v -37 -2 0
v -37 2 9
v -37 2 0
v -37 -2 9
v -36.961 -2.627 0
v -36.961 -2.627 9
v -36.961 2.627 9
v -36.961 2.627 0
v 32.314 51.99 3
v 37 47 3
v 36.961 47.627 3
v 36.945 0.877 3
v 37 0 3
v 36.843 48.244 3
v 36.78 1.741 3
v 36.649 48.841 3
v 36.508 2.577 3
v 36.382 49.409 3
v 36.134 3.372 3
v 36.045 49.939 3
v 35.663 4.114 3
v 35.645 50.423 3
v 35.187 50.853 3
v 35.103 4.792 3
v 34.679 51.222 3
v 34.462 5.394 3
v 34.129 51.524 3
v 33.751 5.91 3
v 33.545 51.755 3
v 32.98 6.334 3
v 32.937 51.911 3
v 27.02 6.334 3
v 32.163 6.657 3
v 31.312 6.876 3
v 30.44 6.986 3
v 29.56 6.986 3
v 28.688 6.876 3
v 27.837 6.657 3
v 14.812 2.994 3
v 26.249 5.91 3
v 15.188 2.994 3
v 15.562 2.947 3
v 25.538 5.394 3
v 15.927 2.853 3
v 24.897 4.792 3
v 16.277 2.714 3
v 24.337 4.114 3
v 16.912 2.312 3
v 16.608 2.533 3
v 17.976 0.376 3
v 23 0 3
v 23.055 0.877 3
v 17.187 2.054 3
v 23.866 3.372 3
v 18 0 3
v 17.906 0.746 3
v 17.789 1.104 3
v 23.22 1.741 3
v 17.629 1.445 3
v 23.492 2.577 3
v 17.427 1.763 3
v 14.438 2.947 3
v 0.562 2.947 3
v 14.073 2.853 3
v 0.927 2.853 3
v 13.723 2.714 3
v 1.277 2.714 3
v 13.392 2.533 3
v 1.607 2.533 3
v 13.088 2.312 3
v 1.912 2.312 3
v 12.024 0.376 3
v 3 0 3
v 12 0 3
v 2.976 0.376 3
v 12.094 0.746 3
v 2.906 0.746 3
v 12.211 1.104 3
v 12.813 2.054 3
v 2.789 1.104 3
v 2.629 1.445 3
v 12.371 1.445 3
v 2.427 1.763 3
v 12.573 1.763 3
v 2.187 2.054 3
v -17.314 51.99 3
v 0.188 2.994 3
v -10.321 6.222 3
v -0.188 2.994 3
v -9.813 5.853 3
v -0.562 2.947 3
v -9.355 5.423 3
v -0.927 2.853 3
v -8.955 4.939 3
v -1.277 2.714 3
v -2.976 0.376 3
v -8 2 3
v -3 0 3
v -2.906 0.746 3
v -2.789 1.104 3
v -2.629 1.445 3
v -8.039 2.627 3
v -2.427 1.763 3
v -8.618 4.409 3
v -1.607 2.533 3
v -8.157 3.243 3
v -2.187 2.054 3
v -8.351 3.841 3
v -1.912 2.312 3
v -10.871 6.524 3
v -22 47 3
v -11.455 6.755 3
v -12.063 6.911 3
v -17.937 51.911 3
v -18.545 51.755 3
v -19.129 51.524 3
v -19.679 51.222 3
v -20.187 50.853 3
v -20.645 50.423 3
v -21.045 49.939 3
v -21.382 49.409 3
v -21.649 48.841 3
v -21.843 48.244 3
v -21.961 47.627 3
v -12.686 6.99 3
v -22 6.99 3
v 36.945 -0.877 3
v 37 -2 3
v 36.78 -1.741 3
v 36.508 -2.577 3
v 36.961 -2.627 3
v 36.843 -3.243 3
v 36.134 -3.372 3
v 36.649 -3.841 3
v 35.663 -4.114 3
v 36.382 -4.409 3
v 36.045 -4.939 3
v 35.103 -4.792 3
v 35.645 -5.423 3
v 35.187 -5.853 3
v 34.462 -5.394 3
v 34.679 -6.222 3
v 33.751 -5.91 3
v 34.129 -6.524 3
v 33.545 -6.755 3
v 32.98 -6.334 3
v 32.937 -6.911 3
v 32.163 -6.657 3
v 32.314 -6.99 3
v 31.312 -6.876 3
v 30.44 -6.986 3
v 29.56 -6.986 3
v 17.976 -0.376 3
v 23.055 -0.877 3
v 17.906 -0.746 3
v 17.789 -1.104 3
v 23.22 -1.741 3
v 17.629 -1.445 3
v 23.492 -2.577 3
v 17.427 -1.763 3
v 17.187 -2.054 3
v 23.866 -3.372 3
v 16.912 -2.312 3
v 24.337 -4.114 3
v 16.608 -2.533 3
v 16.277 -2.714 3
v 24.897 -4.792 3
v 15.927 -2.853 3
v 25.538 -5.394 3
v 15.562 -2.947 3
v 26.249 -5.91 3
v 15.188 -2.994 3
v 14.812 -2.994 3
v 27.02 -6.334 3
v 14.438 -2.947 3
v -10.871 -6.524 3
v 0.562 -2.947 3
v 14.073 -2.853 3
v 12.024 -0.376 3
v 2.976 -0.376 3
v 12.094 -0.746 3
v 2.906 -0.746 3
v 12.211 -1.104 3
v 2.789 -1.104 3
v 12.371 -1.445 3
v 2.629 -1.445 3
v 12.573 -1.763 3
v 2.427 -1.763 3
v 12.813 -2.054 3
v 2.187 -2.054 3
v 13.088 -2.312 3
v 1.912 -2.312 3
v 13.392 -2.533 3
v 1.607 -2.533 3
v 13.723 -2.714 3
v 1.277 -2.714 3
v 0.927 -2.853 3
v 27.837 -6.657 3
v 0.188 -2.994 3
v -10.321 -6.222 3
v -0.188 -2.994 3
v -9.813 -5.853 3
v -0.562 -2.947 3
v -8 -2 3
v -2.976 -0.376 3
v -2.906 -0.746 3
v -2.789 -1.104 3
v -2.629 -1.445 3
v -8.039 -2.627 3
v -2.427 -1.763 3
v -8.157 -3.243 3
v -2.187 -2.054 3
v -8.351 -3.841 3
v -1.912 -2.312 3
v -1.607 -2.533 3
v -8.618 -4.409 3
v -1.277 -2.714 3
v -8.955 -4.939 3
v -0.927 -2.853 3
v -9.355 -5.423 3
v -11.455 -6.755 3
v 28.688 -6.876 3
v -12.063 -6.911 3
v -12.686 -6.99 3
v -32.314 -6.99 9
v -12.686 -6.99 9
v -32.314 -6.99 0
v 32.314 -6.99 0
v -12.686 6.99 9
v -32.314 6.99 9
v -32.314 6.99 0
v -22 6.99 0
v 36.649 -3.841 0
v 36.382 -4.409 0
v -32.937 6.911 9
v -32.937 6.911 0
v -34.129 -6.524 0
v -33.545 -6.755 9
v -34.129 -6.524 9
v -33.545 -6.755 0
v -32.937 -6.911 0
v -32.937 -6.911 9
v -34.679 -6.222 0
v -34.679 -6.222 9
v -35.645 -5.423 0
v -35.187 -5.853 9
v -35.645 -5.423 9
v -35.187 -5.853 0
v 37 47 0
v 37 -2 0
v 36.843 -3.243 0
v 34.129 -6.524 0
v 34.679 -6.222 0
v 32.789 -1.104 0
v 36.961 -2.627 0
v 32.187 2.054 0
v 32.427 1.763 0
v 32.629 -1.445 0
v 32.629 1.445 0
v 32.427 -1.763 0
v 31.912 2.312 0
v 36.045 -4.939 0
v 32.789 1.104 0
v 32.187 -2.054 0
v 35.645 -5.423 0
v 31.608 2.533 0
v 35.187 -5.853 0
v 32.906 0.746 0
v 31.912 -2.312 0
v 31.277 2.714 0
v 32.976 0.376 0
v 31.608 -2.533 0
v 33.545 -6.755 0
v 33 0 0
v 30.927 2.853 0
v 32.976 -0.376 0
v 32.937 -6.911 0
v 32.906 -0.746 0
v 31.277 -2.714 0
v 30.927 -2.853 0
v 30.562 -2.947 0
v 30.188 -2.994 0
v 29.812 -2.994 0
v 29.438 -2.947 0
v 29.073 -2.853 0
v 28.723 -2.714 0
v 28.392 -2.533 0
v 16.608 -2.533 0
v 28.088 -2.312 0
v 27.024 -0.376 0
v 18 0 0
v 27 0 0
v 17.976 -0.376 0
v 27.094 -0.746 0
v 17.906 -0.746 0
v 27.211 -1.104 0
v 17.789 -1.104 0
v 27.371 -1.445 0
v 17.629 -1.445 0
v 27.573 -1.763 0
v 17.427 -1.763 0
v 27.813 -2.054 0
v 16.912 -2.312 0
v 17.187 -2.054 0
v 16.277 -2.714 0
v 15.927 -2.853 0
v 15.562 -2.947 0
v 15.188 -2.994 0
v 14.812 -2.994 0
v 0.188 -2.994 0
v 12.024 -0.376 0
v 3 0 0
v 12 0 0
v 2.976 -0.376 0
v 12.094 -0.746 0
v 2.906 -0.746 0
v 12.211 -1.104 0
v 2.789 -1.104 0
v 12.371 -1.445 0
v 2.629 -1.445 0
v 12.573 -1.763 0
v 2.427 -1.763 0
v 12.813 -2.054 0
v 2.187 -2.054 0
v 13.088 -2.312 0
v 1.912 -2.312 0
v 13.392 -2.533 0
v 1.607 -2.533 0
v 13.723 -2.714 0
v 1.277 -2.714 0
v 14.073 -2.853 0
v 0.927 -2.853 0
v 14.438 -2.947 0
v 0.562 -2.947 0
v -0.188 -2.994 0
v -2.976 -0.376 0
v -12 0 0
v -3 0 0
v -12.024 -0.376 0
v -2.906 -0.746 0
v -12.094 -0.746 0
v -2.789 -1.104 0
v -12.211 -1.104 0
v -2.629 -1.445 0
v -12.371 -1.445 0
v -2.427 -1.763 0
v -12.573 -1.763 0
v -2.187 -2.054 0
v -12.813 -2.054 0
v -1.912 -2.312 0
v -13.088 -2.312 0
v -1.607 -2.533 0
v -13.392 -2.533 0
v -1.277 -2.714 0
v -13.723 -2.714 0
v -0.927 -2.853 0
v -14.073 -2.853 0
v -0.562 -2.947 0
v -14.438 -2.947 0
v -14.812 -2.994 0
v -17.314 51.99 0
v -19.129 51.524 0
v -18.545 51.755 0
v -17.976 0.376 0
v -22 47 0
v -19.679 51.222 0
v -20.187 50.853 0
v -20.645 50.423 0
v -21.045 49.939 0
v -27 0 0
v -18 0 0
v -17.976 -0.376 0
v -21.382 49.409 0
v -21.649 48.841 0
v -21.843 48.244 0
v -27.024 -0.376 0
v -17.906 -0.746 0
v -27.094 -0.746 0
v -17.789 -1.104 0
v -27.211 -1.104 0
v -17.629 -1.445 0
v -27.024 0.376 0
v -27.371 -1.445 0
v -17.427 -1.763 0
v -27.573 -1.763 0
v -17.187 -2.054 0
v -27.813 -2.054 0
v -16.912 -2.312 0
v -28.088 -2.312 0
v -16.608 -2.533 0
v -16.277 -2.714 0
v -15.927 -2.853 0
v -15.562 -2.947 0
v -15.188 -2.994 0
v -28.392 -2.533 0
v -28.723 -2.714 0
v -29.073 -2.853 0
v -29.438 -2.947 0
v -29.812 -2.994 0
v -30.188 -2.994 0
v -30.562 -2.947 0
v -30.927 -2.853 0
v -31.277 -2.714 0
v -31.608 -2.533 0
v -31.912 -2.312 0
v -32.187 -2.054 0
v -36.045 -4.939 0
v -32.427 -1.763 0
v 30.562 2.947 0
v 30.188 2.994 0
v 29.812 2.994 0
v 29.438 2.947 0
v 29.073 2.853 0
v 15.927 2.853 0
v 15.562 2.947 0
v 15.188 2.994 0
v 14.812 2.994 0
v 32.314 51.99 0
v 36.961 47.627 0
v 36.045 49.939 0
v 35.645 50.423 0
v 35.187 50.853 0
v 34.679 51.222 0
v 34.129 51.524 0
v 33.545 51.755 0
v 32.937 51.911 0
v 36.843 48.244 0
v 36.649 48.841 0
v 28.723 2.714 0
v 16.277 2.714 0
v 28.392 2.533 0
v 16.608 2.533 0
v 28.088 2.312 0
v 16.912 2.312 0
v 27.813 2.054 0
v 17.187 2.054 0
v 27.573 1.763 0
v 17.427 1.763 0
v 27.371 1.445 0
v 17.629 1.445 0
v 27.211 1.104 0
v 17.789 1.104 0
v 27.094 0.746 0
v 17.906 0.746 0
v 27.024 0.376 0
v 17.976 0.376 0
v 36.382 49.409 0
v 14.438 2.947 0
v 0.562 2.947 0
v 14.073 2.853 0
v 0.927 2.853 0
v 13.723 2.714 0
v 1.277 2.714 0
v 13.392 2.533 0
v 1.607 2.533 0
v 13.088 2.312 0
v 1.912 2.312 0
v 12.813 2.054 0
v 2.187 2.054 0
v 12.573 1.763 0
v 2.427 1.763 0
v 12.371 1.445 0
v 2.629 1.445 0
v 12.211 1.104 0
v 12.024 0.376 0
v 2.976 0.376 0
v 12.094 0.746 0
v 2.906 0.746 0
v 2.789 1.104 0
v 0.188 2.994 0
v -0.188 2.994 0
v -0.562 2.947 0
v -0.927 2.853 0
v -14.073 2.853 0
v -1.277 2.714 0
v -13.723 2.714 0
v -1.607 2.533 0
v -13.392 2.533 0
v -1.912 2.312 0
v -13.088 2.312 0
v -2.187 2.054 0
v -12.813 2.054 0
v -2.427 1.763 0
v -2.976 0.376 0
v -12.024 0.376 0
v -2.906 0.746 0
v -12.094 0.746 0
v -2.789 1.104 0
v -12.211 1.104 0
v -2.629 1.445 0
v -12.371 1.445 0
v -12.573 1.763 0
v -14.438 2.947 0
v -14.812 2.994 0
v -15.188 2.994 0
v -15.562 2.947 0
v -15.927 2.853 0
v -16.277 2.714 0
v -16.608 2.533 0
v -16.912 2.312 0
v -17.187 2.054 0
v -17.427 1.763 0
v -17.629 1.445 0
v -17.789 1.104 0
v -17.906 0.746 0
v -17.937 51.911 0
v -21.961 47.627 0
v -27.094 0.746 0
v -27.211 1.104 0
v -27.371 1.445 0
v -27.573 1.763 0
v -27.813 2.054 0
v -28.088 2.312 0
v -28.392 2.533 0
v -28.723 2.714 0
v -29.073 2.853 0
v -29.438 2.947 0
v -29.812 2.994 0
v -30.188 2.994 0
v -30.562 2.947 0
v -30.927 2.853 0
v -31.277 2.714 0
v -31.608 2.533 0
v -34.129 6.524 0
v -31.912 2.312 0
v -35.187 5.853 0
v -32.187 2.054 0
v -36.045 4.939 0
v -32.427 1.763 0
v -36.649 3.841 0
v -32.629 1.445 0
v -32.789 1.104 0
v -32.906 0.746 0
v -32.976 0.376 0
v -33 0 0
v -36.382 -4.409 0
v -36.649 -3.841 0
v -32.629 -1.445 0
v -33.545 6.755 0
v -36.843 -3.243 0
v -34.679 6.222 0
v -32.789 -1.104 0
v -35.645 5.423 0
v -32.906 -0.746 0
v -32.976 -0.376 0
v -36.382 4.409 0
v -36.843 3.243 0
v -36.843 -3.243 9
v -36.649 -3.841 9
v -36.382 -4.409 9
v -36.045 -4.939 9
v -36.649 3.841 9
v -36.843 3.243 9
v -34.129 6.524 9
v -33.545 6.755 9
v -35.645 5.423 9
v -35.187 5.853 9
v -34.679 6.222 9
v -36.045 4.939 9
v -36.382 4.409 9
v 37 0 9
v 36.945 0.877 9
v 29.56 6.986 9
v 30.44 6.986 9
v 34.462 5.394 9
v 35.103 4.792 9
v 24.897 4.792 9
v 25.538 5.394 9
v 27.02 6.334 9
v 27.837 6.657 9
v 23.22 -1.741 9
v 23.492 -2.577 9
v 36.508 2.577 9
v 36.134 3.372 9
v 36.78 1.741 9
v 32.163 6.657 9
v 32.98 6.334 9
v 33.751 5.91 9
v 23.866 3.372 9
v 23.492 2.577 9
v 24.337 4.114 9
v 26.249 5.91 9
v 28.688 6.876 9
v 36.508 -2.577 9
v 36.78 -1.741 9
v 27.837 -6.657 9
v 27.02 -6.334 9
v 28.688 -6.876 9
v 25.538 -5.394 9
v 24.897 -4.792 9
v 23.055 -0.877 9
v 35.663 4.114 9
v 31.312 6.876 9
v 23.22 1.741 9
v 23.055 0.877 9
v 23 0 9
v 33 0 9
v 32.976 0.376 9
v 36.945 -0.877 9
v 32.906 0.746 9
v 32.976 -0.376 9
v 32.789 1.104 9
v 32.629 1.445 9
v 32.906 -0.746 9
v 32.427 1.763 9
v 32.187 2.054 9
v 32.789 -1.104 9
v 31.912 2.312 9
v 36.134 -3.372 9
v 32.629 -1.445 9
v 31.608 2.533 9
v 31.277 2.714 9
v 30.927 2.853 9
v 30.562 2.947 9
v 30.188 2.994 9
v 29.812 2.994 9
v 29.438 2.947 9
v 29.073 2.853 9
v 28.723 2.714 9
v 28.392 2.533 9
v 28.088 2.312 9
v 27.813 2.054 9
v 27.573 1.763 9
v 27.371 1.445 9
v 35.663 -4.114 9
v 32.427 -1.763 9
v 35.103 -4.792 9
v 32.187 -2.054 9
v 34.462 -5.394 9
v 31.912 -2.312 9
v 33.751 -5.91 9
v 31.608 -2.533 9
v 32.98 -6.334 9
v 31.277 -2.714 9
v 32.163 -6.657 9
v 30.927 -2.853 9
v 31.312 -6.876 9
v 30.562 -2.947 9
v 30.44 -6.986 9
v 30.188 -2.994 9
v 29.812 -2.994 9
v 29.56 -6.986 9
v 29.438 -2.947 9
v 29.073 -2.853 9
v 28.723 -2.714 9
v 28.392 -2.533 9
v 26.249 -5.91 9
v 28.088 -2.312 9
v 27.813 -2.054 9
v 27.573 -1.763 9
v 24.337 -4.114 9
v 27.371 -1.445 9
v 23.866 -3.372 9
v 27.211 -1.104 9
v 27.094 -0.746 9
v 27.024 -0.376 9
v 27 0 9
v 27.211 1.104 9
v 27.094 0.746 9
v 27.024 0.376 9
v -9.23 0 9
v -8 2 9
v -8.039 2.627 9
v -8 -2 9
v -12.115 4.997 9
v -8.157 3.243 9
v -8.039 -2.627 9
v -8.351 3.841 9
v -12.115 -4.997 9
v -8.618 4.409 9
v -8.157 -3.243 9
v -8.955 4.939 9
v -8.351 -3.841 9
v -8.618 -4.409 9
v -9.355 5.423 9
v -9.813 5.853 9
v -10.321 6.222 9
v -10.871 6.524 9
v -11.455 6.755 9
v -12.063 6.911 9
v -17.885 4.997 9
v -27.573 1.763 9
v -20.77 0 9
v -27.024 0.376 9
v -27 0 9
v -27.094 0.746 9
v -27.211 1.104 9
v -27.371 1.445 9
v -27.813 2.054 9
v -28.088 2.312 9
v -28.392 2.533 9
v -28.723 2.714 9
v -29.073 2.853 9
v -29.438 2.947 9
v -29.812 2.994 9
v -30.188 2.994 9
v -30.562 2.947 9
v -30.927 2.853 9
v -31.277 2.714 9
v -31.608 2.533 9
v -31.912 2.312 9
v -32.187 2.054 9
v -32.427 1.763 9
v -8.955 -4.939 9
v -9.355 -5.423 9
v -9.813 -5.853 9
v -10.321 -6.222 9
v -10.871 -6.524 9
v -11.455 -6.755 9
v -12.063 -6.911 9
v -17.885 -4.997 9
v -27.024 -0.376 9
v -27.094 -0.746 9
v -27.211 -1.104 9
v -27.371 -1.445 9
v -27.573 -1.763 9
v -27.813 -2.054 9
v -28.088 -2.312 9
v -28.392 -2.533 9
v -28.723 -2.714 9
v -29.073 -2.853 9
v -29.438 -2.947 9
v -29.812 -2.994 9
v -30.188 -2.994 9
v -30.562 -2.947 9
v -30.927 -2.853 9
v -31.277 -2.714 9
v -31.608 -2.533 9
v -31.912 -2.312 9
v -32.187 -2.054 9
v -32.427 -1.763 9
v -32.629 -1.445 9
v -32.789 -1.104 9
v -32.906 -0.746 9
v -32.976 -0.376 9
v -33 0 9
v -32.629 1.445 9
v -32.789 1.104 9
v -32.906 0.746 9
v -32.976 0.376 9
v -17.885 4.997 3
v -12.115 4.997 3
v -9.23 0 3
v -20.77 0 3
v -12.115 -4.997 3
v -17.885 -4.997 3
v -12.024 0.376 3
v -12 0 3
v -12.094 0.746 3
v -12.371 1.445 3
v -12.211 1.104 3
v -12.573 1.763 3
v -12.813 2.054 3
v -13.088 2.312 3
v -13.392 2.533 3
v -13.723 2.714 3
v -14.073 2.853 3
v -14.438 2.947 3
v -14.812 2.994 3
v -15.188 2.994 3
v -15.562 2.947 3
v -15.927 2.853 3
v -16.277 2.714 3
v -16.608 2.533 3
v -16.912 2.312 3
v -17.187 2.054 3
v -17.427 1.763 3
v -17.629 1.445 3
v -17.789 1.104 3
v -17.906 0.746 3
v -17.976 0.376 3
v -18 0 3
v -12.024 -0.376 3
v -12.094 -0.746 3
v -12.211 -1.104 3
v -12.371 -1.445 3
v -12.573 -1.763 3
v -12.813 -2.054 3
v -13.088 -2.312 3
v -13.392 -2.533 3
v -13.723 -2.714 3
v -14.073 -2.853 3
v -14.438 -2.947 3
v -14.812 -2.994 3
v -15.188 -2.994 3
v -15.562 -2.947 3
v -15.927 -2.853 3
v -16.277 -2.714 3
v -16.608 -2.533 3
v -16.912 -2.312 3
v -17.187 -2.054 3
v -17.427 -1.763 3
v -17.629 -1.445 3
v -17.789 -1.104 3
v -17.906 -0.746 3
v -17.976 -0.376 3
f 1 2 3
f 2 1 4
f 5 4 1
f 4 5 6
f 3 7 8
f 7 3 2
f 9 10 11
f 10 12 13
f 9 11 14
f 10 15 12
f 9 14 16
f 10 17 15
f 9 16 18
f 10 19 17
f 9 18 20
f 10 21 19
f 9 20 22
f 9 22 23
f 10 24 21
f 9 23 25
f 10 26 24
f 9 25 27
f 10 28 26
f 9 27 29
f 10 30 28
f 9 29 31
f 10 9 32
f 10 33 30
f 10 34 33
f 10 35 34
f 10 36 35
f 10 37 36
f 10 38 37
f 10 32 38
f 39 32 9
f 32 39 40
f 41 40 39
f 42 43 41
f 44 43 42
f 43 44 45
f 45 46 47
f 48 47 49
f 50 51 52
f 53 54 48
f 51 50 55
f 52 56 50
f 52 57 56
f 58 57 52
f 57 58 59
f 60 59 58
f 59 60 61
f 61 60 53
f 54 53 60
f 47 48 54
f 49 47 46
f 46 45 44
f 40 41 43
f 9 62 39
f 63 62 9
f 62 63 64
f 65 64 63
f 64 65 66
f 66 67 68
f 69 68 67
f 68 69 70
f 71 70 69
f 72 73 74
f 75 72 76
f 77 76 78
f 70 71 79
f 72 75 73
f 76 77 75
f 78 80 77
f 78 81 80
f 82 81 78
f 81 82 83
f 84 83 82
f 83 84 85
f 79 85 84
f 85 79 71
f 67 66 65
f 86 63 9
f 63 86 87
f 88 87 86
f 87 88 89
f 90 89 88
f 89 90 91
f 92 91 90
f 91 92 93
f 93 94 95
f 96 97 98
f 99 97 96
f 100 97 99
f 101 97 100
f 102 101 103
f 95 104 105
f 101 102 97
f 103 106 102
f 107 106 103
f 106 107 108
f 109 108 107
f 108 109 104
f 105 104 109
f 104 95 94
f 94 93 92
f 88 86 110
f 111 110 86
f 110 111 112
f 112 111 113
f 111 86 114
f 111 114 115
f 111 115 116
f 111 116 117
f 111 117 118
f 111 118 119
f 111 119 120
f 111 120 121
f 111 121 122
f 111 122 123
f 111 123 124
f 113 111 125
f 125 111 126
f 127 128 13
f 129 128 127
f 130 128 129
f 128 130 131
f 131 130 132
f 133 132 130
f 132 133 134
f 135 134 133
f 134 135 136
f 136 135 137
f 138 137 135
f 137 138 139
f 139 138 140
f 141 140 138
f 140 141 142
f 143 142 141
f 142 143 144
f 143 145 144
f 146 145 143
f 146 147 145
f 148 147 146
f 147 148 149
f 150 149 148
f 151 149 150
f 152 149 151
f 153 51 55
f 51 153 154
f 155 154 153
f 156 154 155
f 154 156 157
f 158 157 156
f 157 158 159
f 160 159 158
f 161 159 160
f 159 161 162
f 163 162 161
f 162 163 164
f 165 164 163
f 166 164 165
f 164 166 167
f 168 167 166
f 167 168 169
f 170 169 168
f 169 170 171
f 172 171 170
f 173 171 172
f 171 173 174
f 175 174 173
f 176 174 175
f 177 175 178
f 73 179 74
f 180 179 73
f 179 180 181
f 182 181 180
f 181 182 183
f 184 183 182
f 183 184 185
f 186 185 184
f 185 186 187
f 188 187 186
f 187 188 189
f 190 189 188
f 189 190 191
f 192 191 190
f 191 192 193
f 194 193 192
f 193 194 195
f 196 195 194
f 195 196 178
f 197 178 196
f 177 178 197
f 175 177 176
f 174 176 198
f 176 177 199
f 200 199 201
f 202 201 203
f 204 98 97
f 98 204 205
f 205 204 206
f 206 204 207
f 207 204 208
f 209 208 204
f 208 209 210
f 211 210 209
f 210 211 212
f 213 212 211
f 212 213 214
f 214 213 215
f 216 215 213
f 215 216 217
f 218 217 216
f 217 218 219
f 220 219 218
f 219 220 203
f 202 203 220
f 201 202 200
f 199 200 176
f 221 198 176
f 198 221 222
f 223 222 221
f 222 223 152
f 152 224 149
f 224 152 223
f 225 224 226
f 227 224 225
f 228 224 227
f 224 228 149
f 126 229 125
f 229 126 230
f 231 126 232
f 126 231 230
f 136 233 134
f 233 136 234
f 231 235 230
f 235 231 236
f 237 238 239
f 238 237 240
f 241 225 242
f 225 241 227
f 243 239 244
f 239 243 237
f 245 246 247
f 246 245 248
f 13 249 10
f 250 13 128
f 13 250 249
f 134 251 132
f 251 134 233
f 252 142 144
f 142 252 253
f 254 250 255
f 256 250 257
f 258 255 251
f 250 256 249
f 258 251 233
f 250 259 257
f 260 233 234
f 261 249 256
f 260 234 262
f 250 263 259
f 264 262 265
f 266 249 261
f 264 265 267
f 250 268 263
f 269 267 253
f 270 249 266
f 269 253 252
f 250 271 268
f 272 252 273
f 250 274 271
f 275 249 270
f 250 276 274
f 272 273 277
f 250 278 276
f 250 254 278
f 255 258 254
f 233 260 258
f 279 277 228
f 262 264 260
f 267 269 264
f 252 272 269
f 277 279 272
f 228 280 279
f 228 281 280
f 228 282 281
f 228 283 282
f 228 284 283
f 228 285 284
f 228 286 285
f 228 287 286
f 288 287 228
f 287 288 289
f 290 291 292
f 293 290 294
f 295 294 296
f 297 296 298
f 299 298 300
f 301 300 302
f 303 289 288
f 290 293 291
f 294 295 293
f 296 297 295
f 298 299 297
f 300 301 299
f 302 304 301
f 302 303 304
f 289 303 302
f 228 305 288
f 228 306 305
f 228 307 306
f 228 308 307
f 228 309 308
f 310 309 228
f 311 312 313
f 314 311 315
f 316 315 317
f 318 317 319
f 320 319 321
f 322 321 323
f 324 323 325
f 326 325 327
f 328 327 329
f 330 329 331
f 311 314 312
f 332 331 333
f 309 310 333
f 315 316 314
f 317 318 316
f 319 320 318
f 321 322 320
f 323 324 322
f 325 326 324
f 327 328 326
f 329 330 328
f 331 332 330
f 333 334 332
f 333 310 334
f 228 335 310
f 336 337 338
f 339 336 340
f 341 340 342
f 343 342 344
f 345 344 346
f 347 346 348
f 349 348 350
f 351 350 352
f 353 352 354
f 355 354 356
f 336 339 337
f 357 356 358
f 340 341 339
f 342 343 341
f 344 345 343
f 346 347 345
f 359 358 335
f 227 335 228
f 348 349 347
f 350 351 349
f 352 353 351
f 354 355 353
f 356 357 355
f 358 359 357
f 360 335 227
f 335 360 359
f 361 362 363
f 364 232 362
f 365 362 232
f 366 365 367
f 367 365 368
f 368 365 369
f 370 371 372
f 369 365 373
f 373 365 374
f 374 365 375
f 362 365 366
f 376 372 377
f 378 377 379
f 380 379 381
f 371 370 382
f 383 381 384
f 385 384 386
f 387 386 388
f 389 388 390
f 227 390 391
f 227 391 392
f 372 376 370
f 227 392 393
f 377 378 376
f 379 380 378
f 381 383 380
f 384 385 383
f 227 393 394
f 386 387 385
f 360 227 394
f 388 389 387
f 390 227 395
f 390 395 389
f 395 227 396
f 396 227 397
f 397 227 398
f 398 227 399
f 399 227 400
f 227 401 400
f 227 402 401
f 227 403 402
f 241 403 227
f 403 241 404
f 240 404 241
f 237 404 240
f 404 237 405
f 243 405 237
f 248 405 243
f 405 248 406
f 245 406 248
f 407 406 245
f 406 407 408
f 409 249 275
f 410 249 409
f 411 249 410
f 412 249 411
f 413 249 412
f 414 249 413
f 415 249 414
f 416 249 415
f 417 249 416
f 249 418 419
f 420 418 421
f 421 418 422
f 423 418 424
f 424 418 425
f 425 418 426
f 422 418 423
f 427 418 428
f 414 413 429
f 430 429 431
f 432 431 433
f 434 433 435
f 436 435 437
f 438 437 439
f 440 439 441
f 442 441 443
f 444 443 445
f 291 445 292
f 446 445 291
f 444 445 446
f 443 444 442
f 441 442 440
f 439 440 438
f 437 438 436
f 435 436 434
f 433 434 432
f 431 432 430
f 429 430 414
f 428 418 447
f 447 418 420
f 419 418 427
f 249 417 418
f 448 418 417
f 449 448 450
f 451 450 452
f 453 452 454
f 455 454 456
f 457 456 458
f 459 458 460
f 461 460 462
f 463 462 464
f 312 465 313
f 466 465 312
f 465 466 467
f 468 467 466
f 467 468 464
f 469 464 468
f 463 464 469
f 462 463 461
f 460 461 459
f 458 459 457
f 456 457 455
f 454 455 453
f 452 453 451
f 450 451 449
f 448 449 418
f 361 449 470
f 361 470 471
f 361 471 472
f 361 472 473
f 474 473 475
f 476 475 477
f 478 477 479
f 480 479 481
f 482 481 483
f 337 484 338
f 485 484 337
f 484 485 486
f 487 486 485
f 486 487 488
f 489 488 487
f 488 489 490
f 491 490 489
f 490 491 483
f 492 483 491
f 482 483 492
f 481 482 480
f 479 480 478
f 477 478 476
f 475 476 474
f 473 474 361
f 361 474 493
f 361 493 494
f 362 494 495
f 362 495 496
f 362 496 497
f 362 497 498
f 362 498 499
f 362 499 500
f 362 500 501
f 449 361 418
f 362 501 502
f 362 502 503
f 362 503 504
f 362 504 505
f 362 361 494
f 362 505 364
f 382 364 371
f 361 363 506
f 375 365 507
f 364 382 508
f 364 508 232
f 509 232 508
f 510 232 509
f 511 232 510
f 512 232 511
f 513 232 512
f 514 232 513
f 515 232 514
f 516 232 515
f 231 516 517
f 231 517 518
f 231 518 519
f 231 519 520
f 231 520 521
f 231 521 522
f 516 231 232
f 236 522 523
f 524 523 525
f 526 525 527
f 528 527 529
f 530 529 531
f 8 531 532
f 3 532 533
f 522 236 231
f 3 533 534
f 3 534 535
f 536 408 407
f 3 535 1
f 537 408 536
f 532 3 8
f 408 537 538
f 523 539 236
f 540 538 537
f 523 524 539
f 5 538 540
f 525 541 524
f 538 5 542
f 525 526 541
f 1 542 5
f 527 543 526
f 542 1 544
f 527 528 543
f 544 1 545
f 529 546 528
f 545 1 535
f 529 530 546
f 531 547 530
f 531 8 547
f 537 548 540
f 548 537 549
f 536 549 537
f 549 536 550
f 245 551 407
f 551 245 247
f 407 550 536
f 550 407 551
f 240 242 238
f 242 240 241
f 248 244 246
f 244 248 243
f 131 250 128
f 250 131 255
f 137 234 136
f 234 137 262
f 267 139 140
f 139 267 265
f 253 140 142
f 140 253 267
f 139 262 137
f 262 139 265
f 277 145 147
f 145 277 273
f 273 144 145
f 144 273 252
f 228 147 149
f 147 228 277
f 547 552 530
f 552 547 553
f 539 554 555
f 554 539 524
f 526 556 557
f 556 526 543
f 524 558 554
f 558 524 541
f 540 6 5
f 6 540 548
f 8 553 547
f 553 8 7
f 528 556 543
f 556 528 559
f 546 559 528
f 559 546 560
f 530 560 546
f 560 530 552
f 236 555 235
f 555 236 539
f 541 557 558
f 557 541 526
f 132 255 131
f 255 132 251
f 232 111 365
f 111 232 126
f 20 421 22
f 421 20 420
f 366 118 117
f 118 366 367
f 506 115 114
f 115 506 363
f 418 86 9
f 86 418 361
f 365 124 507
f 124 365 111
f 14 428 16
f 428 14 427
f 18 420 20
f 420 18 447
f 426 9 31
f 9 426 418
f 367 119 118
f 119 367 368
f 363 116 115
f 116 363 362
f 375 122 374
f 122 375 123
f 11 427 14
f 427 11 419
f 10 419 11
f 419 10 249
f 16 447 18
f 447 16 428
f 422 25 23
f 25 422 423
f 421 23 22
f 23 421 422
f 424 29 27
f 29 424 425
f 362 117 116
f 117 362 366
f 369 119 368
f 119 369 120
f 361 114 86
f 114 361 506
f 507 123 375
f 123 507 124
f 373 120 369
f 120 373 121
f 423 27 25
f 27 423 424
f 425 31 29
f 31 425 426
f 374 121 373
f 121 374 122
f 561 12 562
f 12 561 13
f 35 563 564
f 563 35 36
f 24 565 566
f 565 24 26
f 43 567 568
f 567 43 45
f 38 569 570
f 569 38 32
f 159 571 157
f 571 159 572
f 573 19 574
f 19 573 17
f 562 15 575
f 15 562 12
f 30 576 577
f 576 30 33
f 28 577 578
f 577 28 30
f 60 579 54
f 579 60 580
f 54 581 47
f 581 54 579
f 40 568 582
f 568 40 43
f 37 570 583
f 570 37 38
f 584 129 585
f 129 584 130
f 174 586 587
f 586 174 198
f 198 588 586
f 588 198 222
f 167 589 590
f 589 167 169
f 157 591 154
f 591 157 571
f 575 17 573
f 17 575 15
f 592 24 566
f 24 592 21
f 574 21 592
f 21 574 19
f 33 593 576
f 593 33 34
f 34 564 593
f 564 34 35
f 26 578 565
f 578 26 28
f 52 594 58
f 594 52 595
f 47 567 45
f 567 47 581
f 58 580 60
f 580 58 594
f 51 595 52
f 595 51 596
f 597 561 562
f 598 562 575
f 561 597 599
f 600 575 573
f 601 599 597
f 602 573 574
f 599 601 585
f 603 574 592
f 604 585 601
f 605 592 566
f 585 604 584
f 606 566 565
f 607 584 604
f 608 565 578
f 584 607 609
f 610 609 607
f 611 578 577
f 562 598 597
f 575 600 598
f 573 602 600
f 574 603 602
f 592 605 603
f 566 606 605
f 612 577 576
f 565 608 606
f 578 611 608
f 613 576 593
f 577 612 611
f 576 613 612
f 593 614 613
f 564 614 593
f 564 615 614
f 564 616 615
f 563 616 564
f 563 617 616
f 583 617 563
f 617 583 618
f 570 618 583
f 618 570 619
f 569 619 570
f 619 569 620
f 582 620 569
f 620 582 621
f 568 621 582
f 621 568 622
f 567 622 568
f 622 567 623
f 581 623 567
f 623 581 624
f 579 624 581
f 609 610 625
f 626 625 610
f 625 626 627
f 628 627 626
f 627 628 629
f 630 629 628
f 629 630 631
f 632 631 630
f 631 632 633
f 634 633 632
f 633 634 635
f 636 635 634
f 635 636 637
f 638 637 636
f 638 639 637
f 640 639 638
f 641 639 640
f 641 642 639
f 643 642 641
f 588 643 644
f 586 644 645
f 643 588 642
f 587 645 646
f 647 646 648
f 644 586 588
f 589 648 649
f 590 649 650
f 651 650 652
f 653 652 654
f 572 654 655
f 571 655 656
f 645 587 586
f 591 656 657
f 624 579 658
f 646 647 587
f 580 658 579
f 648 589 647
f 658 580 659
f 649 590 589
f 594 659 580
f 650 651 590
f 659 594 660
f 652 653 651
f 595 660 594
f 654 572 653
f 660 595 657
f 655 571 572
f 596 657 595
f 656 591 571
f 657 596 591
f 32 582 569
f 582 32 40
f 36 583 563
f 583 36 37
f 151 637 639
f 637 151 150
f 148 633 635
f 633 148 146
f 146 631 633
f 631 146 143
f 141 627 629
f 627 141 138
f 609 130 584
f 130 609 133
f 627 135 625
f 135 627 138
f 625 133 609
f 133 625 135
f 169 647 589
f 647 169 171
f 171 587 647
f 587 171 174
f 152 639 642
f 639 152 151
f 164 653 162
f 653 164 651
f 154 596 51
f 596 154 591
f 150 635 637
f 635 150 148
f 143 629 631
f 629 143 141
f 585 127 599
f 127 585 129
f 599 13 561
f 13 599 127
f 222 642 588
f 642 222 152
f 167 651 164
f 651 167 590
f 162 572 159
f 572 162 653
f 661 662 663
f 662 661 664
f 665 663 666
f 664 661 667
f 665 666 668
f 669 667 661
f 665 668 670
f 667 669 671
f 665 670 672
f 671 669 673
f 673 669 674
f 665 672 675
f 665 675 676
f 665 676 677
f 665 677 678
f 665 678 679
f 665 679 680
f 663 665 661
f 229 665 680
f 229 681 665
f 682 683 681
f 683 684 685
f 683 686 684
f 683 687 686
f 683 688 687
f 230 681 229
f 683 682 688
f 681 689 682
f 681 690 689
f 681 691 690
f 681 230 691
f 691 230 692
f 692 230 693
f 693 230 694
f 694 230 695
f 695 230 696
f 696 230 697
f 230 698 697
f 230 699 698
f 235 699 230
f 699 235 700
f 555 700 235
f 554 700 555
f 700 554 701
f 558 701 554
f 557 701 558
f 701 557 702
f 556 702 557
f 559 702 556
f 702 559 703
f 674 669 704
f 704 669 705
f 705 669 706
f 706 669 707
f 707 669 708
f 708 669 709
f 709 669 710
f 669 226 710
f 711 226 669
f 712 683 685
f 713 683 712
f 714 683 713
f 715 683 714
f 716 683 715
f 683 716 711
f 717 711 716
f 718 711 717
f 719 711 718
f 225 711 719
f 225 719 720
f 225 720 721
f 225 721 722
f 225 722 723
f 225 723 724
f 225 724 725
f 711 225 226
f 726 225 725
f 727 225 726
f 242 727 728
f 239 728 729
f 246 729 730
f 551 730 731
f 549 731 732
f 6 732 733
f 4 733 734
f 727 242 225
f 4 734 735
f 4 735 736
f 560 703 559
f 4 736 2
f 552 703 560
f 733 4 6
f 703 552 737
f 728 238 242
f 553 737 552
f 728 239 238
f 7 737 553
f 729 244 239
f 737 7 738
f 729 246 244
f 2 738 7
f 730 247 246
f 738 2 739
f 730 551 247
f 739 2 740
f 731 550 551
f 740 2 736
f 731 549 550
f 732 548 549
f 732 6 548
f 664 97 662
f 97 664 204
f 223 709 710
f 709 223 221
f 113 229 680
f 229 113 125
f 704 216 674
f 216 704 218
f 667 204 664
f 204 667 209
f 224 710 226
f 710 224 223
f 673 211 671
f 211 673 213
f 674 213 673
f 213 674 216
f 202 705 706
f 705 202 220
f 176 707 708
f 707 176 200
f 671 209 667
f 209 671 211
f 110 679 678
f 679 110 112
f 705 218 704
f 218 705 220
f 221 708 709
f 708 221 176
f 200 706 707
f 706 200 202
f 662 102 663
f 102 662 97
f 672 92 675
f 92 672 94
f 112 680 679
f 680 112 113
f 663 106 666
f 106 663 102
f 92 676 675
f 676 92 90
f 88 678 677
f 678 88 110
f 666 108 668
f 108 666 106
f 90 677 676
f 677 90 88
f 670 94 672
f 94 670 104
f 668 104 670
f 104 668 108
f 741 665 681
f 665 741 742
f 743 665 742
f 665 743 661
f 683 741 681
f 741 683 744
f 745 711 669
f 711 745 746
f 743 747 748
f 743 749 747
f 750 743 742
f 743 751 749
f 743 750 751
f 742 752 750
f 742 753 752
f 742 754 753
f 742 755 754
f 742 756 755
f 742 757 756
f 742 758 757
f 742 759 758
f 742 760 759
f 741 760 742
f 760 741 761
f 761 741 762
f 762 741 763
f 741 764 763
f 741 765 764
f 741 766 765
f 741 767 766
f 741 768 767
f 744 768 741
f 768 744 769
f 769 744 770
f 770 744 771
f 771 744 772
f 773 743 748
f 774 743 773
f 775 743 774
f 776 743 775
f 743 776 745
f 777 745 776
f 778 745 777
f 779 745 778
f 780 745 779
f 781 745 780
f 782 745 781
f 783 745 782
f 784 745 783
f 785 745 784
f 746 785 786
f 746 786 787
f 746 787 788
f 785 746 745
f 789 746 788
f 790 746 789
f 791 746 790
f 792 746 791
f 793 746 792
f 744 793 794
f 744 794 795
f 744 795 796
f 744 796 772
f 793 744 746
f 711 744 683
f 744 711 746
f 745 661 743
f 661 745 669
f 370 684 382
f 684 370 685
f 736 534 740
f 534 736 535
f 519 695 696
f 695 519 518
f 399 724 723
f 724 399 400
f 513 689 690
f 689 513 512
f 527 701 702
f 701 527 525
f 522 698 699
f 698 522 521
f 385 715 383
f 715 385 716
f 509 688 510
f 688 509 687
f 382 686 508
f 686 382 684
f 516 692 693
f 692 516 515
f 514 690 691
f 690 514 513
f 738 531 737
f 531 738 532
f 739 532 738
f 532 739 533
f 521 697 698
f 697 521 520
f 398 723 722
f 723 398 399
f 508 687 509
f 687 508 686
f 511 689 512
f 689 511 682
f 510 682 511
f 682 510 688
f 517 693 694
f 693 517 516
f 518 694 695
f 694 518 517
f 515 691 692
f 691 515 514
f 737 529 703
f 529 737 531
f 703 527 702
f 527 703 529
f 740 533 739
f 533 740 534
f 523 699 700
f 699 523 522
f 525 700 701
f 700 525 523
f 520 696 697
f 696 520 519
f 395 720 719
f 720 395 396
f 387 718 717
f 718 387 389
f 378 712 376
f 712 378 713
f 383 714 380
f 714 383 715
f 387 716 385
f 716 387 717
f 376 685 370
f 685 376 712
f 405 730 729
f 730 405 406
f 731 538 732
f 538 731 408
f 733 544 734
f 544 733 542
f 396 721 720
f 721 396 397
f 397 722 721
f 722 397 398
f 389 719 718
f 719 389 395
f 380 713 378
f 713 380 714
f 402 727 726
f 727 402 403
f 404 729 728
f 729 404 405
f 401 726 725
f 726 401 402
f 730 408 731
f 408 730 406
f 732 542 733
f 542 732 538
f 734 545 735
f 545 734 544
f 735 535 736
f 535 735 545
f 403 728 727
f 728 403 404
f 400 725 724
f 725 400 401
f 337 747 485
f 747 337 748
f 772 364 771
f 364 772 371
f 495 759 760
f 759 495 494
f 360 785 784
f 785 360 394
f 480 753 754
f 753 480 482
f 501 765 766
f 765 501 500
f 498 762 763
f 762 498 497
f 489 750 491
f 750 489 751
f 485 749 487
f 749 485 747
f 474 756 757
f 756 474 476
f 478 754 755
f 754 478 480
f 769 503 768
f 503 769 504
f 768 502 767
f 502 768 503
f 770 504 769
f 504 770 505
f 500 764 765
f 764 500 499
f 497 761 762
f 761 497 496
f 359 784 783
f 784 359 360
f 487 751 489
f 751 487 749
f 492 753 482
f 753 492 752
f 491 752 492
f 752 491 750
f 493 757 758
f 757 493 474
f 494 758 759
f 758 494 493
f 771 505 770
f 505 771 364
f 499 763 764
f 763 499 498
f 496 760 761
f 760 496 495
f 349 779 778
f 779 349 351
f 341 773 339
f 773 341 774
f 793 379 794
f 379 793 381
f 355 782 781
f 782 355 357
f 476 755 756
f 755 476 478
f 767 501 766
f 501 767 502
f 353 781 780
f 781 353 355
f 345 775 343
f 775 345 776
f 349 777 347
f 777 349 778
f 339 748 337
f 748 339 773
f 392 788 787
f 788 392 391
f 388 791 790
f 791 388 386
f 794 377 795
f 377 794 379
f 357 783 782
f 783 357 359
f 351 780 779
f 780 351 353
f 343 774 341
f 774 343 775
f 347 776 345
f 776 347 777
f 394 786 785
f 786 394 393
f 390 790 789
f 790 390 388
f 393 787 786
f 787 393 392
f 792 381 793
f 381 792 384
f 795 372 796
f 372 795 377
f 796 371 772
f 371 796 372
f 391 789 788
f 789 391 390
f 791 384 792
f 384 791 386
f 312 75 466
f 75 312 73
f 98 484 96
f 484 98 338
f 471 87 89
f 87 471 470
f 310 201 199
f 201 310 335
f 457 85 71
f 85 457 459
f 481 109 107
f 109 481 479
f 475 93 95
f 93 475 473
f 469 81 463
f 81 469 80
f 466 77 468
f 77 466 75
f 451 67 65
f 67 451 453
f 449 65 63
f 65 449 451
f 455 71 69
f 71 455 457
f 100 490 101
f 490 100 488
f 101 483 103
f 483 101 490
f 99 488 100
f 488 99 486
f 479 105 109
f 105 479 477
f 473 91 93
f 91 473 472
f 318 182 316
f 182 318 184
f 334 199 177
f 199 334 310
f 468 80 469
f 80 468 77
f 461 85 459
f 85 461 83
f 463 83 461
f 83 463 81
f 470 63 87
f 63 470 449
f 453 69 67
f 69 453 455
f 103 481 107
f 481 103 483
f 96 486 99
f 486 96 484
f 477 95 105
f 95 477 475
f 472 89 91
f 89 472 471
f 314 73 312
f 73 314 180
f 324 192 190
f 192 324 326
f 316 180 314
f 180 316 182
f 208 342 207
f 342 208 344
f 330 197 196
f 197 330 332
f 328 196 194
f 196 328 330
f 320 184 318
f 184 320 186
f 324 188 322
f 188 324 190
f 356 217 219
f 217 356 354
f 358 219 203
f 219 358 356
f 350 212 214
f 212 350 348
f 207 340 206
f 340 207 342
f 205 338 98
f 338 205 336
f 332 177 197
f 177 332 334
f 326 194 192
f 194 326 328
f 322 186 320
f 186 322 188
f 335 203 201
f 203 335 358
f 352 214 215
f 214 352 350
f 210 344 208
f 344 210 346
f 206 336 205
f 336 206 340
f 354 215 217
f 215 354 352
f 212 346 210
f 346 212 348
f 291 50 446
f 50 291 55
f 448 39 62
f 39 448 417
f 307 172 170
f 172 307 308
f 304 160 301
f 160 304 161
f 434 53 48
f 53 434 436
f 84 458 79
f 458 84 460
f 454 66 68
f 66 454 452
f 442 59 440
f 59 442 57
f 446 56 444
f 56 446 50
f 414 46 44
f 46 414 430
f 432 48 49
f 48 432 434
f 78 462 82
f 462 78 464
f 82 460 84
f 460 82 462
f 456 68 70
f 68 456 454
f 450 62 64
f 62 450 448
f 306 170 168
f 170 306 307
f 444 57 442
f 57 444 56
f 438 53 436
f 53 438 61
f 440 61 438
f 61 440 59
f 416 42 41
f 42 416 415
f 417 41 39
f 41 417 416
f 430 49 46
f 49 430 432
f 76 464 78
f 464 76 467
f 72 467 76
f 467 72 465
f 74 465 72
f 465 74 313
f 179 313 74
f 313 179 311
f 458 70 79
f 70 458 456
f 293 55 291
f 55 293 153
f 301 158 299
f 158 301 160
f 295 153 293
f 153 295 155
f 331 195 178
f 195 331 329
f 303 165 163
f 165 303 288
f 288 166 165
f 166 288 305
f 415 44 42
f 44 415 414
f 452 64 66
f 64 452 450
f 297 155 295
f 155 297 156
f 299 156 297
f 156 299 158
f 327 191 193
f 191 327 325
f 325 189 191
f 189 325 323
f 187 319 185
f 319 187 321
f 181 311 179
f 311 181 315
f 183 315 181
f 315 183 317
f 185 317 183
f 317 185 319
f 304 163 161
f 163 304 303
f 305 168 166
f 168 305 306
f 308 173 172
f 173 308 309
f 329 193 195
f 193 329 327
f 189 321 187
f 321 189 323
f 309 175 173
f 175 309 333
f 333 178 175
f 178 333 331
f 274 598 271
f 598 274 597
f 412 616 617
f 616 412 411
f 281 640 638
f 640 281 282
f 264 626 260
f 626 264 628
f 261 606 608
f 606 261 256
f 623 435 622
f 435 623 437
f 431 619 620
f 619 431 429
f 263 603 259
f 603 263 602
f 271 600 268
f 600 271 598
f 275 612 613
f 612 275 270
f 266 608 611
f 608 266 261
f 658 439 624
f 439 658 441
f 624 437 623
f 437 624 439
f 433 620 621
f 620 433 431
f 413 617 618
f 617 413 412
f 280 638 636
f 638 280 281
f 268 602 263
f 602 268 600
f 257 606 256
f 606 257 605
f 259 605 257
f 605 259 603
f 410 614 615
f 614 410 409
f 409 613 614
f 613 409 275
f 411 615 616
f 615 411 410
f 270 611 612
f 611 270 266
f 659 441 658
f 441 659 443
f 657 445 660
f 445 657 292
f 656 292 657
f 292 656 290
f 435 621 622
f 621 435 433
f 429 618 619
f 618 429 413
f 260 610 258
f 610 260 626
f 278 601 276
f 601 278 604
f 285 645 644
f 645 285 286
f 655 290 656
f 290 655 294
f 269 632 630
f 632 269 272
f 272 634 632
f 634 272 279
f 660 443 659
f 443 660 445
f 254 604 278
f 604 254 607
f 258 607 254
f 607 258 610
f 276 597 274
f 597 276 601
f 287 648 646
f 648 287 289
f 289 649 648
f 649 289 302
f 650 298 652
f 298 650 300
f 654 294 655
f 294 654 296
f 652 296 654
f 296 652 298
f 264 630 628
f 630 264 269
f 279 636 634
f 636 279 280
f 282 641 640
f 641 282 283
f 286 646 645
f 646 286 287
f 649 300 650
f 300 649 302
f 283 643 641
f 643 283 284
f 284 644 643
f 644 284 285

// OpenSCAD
$fn = 50;


difference() {
	union() {
		hull() {
			translate(v = [-32.0000000000, 2.0000000000, 0]) {
				cylinder(h = 3, r = 5);
			}
			translate(v = [32.0000000000, 2.0000000000, 0]) {
				cylinder(h = 3, r = 5);
			}
			translate(v = [-32.0000000000, -2.0000000000, 0]) {
				cylinder(h = 3, r = 5);
			}
			translate(v = [32.0000000000, -2.0000000000, 0]) {
				cylinder(h = 3, r = 5);
			}
		}
		translate(v = [7.5000000000, 22.5000000000, 0]) {
			hull() {
				translate(v = [-24.5000000000, 24.5000000000, 0]) {
					cylinder(h = 3, r = 5);
				}
				translate(v = [24.5000000000, 24.5000000000, 0]) {
					cylinder(h = 3, r = 5);
				}
				translate(v = [-24.5000000000, -24.5000000000, 0]) {
					cylinder(h = 3, r = 5);
				}
				translate(v = [24.5000000000, -24.5000000000, 0]) {
					cylinder(h = 3, r = 5);
				}
			}
		}
		translate(v = [30.0000000000, 0, 0]) {
			cylinder(h = 9, r = 7.0000000000);
		}
		translate(v = [-22.5000000000, 0, 0]) {
			hull() {
				translate(v = [-9.5000000000, 2.0000000000, 0]) {
					cylinder(h = 9, r = 5);
				}
				translate(v = [9.5000000000, 2.0000000000, 0]) {
					cylinder(h = 9, r = 5);
				}
				translate(v = [-9.5000000000, -2.0000000000, 0]) {
					cylinder(h = 9, r = 5);
				}
				translate(v = [9.5000000000, -2.0000000000, 0]) {
					cylinder(h = 9, r = 5);
				}
			}
		}
	}
	union() {
		translate(v = [-15.0000000000, 0, 9]) {
			rotate(a = [0, 0, 0]) {
				difference() {
					union() {
						translate(v = [0, 0, -6]) {
							linear_extrude(height = 6) {
								polygon(points = [[5.7700000000, 0.0000000000], [2.8850000000, 4.9969665798], [-2.8850000000, 4.9969665798], [-5.7700000000, 0.0000000000], [-2.8850000000, -4.9969665798], [2.8850000000, -4.9969665798]]);
							}
						}
					}
					union();
				}
			}
		}
		translate(v = [-30.0000000000, 0.0000000000, 0]) {
			translate(v = [0, 0, -50]) {
				cylinder(h = 100, r = 3.0000000000);
			}
		}
		translate(v = [-15.0000000000, 0.0000000000, 0]) {
			translate(v = [0, 0, -50]) {
				cylinder(h = 100, r = 3.0000000000);
			}
		}
		translate(v = [0, 0, -50]) {
			cylinder(h = 100, r = 3.0000000000);
		}
		translate(v = [15.0000000000, 0.0000000000, 0]) {
			translate(v = [0, 0, -50]) {
				cylinder(h = 100, r = 3.0000000000);
			}
		}
		translate(v = [30.0000000000, 0.0000000000, 0]) {
			translate(v = [0, 0, -50]) {
				cylinder(h = 100, r = 3.0000000000);
			}
		}
	}
}
